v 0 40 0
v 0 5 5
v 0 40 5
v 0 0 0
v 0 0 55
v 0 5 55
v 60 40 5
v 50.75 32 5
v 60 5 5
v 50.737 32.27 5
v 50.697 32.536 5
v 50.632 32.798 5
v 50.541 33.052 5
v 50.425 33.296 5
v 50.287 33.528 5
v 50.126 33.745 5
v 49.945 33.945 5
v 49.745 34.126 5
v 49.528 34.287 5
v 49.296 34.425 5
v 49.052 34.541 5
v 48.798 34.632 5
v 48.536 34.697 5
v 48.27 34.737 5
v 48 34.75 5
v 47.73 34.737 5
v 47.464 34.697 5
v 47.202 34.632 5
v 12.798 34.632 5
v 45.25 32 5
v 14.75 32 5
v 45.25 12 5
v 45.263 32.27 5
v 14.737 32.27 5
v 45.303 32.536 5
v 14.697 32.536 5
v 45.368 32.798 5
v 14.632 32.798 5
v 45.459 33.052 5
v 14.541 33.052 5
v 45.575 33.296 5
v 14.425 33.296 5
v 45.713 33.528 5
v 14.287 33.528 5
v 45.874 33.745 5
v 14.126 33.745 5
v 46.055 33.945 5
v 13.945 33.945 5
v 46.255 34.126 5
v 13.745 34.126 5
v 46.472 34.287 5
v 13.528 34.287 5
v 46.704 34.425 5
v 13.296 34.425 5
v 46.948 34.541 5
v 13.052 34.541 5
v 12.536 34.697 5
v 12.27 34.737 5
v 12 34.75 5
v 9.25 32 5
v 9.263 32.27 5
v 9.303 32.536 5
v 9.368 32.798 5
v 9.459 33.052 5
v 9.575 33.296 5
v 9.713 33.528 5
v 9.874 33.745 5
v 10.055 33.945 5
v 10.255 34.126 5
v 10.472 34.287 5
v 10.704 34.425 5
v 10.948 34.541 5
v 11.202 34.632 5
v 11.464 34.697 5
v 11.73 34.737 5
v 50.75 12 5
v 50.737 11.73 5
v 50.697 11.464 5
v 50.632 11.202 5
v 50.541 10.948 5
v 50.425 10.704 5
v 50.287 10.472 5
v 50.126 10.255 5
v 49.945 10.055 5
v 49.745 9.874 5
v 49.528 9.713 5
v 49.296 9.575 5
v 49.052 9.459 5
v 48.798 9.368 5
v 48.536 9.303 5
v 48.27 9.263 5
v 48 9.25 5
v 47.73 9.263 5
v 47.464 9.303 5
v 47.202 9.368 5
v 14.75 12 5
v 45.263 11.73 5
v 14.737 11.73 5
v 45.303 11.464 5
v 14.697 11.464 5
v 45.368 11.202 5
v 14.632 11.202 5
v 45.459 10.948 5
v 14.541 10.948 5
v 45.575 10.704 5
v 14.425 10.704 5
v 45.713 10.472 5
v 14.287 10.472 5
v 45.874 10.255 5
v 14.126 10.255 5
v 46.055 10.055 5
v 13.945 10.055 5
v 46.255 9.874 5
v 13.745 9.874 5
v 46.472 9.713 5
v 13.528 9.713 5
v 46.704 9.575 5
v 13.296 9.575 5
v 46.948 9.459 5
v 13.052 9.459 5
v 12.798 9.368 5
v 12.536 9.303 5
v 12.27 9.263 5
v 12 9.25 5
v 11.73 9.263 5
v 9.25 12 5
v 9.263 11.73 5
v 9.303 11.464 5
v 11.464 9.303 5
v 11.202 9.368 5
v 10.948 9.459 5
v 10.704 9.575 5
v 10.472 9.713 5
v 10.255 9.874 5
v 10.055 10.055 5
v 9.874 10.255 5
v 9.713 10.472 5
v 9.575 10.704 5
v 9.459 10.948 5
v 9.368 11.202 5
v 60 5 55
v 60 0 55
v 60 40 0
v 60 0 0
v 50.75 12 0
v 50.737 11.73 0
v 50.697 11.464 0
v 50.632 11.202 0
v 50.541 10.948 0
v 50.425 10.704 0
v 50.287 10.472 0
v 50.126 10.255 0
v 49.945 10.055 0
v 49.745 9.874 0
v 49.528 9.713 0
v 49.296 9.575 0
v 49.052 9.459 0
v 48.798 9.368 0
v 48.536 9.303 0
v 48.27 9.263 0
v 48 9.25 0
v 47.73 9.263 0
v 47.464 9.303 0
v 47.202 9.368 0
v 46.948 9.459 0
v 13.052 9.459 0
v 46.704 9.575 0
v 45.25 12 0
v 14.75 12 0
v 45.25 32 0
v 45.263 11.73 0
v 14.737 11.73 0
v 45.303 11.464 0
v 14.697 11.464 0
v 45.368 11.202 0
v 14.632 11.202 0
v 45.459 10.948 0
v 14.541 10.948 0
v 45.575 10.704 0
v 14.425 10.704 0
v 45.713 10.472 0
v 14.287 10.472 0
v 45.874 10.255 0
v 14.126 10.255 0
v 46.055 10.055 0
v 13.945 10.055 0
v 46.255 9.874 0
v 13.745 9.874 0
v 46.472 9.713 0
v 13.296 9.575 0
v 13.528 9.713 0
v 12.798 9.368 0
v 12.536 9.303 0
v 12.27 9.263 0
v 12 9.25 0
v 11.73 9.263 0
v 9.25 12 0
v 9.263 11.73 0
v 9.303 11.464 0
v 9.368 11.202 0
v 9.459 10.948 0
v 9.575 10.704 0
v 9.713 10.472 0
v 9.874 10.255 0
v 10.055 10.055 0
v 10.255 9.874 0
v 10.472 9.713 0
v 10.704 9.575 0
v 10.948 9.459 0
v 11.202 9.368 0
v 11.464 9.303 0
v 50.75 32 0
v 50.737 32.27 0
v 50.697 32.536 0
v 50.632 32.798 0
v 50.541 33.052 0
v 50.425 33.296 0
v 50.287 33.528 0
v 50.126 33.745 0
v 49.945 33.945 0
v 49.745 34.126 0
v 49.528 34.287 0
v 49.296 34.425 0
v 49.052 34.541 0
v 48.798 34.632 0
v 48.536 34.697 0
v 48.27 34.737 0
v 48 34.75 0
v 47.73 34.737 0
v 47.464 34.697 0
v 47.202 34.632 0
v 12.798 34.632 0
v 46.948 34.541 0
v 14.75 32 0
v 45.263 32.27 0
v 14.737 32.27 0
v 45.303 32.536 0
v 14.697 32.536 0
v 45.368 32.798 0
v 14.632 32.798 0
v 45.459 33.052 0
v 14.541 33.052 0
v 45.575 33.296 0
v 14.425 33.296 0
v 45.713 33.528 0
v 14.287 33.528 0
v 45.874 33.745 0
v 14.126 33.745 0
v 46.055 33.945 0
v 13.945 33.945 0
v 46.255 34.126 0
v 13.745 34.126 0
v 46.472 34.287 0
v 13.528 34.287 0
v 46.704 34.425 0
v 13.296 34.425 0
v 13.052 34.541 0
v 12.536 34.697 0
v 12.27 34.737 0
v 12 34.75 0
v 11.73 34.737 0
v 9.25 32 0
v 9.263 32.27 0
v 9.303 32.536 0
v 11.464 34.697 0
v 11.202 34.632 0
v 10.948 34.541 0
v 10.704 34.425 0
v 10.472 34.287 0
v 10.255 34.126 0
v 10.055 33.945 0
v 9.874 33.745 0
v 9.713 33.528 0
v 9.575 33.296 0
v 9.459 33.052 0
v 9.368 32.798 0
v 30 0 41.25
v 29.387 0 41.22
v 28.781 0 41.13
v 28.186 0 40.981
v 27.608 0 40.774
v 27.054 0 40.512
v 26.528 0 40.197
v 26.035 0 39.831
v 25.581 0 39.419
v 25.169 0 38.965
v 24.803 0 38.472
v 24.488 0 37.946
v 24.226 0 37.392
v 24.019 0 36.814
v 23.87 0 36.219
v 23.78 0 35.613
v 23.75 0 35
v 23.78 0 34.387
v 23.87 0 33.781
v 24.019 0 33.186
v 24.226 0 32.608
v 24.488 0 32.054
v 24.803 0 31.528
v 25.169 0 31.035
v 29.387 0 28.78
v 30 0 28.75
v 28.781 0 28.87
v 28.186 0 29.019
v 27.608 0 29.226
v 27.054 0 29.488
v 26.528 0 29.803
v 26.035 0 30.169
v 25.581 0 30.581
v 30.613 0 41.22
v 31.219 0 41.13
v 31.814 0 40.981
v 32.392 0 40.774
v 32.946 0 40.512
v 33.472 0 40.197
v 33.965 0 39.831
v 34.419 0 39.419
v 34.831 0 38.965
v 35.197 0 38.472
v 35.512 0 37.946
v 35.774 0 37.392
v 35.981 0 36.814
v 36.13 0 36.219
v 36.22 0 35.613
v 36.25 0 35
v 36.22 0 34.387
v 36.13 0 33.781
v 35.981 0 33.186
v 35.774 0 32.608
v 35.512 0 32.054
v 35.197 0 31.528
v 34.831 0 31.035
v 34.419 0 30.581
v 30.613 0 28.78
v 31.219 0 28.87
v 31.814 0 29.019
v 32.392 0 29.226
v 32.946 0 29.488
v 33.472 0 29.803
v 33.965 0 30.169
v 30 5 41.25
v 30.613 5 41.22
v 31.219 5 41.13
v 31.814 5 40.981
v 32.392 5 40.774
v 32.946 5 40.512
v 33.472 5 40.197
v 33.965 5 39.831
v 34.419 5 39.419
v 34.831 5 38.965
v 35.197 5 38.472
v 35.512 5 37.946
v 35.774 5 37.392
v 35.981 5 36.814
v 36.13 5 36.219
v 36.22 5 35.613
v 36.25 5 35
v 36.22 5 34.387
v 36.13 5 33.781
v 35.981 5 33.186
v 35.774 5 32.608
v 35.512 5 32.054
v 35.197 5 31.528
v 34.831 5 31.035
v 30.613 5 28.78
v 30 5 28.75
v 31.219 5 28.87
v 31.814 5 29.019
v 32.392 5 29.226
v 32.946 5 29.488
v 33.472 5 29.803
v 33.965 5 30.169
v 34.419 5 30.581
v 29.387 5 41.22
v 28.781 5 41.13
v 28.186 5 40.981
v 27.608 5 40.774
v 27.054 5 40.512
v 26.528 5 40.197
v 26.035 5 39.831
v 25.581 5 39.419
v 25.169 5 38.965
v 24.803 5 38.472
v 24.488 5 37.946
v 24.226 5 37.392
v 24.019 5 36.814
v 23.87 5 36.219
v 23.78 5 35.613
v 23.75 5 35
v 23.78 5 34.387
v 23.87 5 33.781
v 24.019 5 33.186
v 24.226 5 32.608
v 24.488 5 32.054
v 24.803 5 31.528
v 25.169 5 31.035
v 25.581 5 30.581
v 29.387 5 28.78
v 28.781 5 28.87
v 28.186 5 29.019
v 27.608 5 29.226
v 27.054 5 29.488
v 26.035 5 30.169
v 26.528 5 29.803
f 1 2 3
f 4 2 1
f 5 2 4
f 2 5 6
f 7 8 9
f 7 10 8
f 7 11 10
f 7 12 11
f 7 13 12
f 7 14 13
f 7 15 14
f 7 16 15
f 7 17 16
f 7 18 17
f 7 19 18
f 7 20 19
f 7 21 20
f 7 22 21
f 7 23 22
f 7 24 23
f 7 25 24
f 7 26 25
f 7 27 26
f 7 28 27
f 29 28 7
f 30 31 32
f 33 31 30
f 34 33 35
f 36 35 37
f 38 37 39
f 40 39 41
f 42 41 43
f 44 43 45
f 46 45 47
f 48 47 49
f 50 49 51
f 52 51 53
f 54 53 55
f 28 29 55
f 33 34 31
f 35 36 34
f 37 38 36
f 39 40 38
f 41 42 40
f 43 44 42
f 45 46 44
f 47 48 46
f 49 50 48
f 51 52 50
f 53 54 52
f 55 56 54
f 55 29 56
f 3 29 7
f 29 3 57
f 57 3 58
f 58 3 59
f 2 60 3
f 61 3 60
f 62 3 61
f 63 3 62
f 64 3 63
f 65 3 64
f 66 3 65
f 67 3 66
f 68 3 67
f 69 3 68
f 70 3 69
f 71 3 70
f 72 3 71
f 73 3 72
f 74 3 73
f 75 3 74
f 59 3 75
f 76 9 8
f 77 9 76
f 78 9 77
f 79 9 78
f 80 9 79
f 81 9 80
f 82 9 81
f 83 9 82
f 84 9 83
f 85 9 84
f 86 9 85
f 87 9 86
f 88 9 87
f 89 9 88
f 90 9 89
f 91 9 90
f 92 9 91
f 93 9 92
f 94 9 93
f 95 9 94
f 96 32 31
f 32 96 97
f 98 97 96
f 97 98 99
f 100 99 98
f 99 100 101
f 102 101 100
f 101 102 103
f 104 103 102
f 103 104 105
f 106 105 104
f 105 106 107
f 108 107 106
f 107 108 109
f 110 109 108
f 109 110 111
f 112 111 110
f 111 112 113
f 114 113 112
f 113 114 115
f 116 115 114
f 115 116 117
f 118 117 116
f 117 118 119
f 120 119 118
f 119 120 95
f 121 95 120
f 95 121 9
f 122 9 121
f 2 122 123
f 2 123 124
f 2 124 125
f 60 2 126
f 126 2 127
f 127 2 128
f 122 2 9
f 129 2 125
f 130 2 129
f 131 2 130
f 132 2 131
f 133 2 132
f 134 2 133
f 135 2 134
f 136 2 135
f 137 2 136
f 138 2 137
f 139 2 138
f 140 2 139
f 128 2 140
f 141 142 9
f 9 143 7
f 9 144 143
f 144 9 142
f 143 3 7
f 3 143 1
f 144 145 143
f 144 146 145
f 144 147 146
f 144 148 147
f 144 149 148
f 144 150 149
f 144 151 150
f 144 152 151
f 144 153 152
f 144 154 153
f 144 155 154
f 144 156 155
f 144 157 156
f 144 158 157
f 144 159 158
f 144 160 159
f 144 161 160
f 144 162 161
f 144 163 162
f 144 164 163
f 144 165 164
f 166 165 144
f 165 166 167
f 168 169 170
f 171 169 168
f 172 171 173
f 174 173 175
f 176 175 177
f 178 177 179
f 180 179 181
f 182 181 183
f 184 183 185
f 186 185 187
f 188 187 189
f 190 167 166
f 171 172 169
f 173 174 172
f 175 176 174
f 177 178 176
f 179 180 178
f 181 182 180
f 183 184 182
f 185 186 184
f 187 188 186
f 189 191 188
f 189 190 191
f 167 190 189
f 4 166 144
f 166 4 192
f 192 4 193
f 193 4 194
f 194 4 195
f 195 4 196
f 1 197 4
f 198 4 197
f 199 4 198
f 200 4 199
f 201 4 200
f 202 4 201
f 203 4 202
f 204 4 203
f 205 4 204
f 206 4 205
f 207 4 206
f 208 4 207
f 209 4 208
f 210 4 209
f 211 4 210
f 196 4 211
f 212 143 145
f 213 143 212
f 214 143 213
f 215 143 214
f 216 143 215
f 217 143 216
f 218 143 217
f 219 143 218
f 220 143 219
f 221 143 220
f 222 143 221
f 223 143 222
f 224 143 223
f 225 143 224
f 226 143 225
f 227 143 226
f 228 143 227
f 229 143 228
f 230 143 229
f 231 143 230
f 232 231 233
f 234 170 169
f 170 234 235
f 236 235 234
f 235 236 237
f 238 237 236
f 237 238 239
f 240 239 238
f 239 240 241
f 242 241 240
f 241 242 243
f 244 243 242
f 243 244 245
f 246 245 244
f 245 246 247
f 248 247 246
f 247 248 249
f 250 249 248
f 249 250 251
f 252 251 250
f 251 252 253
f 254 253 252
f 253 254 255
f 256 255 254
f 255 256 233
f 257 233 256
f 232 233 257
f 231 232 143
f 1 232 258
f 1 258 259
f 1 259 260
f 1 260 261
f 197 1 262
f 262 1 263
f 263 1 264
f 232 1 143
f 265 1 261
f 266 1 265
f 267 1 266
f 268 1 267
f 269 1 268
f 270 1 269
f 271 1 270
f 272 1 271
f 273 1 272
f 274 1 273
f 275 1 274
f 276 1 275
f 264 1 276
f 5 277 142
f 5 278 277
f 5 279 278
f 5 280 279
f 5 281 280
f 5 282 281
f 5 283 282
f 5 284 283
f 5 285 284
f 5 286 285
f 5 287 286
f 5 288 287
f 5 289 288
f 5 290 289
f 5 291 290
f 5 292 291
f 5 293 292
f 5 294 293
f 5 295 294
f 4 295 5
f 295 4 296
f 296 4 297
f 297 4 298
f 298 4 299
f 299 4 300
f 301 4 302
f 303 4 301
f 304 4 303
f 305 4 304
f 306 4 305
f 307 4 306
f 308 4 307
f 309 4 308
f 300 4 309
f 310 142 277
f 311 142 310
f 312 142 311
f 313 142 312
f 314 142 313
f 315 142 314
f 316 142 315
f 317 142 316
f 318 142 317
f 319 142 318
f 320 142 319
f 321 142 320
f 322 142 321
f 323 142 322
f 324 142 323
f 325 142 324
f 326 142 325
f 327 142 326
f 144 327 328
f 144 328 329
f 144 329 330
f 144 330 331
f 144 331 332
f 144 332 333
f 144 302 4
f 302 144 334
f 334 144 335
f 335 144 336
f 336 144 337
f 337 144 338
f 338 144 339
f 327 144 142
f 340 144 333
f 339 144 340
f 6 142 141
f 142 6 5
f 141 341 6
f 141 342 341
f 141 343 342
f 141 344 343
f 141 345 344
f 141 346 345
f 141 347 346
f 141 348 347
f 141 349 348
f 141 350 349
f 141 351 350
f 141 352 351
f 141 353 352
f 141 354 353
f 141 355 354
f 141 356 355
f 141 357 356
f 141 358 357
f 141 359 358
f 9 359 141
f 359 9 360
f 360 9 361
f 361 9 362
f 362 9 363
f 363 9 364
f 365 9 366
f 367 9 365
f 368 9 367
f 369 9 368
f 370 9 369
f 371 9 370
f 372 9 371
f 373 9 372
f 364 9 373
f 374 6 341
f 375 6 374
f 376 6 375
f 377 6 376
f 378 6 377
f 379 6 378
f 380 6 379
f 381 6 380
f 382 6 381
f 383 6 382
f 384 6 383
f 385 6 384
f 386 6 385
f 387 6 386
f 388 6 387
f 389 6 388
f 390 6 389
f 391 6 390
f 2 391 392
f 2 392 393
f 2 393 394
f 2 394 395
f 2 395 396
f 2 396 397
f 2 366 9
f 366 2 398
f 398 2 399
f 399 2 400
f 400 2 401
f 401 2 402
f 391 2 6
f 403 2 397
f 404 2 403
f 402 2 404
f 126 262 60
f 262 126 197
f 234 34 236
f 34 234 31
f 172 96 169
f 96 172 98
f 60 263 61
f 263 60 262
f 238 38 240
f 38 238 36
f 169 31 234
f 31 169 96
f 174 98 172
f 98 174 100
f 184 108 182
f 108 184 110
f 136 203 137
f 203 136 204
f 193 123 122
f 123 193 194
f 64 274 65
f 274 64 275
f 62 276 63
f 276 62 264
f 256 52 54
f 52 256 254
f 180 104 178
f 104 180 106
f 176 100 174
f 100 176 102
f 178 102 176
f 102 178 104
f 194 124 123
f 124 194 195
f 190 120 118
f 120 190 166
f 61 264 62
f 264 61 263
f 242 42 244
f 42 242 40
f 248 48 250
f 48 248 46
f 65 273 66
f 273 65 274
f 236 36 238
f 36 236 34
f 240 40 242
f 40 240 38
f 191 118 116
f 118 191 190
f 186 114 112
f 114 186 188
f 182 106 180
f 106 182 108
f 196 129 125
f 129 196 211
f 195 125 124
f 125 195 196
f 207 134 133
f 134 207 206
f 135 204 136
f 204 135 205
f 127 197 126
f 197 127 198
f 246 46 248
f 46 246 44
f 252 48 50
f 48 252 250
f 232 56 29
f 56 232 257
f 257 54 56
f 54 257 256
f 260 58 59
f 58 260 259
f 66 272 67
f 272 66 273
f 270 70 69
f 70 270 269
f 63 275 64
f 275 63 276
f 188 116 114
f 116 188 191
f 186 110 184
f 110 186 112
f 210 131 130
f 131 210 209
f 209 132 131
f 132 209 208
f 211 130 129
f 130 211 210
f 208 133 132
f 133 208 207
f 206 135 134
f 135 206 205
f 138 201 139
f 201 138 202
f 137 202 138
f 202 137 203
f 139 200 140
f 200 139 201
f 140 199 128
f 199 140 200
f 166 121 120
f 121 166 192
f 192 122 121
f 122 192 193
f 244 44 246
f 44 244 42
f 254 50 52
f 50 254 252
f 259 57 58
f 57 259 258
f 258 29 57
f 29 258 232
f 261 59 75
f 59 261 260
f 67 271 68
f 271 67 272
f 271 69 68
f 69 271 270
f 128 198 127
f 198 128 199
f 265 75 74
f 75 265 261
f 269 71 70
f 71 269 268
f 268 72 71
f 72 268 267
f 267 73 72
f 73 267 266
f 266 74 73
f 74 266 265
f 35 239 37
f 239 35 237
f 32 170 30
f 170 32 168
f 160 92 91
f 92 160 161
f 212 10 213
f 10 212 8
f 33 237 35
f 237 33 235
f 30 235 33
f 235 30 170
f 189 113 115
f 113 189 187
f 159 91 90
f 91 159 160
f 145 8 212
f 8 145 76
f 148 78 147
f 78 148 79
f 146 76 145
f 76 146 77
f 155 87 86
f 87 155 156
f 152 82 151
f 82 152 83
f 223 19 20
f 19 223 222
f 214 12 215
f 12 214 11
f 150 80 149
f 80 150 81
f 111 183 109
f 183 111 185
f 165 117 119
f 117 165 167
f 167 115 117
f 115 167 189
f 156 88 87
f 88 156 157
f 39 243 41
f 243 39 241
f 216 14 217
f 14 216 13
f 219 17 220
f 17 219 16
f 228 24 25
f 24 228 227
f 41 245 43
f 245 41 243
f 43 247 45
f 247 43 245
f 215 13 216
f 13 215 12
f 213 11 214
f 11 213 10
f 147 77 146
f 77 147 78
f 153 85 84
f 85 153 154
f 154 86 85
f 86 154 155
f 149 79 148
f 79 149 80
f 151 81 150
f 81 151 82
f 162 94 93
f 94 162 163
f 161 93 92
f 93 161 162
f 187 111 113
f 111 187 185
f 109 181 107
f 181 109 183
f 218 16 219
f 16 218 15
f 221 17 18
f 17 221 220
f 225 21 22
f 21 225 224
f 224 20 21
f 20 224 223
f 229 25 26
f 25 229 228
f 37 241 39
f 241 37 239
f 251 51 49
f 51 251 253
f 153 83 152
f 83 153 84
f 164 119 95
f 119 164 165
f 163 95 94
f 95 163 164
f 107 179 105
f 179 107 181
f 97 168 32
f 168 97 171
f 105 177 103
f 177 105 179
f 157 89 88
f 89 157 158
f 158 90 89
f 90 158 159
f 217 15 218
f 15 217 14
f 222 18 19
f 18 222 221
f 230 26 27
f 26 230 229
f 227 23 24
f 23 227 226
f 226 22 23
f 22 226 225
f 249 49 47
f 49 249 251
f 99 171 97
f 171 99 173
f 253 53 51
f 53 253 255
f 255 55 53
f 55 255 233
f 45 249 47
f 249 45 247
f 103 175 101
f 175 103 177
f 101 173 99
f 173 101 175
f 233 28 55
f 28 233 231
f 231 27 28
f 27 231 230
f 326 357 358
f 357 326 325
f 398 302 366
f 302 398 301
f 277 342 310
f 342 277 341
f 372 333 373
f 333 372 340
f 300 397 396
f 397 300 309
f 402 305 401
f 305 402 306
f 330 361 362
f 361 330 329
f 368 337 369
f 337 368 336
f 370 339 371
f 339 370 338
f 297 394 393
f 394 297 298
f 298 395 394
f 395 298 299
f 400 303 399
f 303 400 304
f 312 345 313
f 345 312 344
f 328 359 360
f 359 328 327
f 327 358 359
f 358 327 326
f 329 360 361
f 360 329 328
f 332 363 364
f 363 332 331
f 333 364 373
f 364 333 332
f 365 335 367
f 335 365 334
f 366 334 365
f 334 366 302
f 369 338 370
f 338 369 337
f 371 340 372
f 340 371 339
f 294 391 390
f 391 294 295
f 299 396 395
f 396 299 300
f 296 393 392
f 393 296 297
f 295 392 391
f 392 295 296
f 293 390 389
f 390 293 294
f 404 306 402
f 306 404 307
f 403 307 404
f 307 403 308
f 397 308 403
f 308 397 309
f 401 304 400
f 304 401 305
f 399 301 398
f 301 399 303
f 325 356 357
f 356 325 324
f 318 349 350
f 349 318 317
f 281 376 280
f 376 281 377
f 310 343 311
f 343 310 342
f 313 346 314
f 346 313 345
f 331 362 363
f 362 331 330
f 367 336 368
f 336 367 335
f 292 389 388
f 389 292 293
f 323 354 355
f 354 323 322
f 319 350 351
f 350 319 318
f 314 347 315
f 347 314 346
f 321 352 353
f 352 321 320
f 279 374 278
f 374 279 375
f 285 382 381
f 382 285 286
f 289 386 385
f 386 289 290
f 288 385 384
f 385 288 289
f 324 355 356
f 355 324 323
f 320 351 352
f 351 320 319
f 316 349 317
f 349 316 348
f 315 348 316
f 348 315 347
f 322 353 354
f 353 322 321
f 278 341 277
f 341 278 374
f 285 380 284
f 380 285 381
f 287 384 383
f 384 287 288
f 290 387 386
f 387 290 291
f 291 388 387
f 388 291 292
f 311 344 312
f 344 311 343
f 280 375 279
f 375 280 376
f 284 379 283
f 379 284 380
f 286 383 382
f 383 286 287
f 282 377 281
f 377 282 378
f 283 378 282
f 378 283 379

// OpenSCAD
// Original MechIntel educational model. CC0-1.0. Units: mm.
// Not a standardized or load-rated component.
$fn=96;
width=60; depth=40; height=55; wall=5; aperture=12.5; slot=5.5; travel=20;
$fn=64;
difference(){
 union(){cube([width,depth,wall]);cube([width,wall,height]);}
 translate([width/2,-1,35]) rotate([-90,0,0]) cylinder(d=aperture,h=wall+2);
 for(x=[12,width-12]) hull(){
 translate([x,12,-1]) cylinder(d=slot,h=wall+2);
 translate([x,12+travel,-1]) cylinder(d=slot,h=wall+2);}
}
